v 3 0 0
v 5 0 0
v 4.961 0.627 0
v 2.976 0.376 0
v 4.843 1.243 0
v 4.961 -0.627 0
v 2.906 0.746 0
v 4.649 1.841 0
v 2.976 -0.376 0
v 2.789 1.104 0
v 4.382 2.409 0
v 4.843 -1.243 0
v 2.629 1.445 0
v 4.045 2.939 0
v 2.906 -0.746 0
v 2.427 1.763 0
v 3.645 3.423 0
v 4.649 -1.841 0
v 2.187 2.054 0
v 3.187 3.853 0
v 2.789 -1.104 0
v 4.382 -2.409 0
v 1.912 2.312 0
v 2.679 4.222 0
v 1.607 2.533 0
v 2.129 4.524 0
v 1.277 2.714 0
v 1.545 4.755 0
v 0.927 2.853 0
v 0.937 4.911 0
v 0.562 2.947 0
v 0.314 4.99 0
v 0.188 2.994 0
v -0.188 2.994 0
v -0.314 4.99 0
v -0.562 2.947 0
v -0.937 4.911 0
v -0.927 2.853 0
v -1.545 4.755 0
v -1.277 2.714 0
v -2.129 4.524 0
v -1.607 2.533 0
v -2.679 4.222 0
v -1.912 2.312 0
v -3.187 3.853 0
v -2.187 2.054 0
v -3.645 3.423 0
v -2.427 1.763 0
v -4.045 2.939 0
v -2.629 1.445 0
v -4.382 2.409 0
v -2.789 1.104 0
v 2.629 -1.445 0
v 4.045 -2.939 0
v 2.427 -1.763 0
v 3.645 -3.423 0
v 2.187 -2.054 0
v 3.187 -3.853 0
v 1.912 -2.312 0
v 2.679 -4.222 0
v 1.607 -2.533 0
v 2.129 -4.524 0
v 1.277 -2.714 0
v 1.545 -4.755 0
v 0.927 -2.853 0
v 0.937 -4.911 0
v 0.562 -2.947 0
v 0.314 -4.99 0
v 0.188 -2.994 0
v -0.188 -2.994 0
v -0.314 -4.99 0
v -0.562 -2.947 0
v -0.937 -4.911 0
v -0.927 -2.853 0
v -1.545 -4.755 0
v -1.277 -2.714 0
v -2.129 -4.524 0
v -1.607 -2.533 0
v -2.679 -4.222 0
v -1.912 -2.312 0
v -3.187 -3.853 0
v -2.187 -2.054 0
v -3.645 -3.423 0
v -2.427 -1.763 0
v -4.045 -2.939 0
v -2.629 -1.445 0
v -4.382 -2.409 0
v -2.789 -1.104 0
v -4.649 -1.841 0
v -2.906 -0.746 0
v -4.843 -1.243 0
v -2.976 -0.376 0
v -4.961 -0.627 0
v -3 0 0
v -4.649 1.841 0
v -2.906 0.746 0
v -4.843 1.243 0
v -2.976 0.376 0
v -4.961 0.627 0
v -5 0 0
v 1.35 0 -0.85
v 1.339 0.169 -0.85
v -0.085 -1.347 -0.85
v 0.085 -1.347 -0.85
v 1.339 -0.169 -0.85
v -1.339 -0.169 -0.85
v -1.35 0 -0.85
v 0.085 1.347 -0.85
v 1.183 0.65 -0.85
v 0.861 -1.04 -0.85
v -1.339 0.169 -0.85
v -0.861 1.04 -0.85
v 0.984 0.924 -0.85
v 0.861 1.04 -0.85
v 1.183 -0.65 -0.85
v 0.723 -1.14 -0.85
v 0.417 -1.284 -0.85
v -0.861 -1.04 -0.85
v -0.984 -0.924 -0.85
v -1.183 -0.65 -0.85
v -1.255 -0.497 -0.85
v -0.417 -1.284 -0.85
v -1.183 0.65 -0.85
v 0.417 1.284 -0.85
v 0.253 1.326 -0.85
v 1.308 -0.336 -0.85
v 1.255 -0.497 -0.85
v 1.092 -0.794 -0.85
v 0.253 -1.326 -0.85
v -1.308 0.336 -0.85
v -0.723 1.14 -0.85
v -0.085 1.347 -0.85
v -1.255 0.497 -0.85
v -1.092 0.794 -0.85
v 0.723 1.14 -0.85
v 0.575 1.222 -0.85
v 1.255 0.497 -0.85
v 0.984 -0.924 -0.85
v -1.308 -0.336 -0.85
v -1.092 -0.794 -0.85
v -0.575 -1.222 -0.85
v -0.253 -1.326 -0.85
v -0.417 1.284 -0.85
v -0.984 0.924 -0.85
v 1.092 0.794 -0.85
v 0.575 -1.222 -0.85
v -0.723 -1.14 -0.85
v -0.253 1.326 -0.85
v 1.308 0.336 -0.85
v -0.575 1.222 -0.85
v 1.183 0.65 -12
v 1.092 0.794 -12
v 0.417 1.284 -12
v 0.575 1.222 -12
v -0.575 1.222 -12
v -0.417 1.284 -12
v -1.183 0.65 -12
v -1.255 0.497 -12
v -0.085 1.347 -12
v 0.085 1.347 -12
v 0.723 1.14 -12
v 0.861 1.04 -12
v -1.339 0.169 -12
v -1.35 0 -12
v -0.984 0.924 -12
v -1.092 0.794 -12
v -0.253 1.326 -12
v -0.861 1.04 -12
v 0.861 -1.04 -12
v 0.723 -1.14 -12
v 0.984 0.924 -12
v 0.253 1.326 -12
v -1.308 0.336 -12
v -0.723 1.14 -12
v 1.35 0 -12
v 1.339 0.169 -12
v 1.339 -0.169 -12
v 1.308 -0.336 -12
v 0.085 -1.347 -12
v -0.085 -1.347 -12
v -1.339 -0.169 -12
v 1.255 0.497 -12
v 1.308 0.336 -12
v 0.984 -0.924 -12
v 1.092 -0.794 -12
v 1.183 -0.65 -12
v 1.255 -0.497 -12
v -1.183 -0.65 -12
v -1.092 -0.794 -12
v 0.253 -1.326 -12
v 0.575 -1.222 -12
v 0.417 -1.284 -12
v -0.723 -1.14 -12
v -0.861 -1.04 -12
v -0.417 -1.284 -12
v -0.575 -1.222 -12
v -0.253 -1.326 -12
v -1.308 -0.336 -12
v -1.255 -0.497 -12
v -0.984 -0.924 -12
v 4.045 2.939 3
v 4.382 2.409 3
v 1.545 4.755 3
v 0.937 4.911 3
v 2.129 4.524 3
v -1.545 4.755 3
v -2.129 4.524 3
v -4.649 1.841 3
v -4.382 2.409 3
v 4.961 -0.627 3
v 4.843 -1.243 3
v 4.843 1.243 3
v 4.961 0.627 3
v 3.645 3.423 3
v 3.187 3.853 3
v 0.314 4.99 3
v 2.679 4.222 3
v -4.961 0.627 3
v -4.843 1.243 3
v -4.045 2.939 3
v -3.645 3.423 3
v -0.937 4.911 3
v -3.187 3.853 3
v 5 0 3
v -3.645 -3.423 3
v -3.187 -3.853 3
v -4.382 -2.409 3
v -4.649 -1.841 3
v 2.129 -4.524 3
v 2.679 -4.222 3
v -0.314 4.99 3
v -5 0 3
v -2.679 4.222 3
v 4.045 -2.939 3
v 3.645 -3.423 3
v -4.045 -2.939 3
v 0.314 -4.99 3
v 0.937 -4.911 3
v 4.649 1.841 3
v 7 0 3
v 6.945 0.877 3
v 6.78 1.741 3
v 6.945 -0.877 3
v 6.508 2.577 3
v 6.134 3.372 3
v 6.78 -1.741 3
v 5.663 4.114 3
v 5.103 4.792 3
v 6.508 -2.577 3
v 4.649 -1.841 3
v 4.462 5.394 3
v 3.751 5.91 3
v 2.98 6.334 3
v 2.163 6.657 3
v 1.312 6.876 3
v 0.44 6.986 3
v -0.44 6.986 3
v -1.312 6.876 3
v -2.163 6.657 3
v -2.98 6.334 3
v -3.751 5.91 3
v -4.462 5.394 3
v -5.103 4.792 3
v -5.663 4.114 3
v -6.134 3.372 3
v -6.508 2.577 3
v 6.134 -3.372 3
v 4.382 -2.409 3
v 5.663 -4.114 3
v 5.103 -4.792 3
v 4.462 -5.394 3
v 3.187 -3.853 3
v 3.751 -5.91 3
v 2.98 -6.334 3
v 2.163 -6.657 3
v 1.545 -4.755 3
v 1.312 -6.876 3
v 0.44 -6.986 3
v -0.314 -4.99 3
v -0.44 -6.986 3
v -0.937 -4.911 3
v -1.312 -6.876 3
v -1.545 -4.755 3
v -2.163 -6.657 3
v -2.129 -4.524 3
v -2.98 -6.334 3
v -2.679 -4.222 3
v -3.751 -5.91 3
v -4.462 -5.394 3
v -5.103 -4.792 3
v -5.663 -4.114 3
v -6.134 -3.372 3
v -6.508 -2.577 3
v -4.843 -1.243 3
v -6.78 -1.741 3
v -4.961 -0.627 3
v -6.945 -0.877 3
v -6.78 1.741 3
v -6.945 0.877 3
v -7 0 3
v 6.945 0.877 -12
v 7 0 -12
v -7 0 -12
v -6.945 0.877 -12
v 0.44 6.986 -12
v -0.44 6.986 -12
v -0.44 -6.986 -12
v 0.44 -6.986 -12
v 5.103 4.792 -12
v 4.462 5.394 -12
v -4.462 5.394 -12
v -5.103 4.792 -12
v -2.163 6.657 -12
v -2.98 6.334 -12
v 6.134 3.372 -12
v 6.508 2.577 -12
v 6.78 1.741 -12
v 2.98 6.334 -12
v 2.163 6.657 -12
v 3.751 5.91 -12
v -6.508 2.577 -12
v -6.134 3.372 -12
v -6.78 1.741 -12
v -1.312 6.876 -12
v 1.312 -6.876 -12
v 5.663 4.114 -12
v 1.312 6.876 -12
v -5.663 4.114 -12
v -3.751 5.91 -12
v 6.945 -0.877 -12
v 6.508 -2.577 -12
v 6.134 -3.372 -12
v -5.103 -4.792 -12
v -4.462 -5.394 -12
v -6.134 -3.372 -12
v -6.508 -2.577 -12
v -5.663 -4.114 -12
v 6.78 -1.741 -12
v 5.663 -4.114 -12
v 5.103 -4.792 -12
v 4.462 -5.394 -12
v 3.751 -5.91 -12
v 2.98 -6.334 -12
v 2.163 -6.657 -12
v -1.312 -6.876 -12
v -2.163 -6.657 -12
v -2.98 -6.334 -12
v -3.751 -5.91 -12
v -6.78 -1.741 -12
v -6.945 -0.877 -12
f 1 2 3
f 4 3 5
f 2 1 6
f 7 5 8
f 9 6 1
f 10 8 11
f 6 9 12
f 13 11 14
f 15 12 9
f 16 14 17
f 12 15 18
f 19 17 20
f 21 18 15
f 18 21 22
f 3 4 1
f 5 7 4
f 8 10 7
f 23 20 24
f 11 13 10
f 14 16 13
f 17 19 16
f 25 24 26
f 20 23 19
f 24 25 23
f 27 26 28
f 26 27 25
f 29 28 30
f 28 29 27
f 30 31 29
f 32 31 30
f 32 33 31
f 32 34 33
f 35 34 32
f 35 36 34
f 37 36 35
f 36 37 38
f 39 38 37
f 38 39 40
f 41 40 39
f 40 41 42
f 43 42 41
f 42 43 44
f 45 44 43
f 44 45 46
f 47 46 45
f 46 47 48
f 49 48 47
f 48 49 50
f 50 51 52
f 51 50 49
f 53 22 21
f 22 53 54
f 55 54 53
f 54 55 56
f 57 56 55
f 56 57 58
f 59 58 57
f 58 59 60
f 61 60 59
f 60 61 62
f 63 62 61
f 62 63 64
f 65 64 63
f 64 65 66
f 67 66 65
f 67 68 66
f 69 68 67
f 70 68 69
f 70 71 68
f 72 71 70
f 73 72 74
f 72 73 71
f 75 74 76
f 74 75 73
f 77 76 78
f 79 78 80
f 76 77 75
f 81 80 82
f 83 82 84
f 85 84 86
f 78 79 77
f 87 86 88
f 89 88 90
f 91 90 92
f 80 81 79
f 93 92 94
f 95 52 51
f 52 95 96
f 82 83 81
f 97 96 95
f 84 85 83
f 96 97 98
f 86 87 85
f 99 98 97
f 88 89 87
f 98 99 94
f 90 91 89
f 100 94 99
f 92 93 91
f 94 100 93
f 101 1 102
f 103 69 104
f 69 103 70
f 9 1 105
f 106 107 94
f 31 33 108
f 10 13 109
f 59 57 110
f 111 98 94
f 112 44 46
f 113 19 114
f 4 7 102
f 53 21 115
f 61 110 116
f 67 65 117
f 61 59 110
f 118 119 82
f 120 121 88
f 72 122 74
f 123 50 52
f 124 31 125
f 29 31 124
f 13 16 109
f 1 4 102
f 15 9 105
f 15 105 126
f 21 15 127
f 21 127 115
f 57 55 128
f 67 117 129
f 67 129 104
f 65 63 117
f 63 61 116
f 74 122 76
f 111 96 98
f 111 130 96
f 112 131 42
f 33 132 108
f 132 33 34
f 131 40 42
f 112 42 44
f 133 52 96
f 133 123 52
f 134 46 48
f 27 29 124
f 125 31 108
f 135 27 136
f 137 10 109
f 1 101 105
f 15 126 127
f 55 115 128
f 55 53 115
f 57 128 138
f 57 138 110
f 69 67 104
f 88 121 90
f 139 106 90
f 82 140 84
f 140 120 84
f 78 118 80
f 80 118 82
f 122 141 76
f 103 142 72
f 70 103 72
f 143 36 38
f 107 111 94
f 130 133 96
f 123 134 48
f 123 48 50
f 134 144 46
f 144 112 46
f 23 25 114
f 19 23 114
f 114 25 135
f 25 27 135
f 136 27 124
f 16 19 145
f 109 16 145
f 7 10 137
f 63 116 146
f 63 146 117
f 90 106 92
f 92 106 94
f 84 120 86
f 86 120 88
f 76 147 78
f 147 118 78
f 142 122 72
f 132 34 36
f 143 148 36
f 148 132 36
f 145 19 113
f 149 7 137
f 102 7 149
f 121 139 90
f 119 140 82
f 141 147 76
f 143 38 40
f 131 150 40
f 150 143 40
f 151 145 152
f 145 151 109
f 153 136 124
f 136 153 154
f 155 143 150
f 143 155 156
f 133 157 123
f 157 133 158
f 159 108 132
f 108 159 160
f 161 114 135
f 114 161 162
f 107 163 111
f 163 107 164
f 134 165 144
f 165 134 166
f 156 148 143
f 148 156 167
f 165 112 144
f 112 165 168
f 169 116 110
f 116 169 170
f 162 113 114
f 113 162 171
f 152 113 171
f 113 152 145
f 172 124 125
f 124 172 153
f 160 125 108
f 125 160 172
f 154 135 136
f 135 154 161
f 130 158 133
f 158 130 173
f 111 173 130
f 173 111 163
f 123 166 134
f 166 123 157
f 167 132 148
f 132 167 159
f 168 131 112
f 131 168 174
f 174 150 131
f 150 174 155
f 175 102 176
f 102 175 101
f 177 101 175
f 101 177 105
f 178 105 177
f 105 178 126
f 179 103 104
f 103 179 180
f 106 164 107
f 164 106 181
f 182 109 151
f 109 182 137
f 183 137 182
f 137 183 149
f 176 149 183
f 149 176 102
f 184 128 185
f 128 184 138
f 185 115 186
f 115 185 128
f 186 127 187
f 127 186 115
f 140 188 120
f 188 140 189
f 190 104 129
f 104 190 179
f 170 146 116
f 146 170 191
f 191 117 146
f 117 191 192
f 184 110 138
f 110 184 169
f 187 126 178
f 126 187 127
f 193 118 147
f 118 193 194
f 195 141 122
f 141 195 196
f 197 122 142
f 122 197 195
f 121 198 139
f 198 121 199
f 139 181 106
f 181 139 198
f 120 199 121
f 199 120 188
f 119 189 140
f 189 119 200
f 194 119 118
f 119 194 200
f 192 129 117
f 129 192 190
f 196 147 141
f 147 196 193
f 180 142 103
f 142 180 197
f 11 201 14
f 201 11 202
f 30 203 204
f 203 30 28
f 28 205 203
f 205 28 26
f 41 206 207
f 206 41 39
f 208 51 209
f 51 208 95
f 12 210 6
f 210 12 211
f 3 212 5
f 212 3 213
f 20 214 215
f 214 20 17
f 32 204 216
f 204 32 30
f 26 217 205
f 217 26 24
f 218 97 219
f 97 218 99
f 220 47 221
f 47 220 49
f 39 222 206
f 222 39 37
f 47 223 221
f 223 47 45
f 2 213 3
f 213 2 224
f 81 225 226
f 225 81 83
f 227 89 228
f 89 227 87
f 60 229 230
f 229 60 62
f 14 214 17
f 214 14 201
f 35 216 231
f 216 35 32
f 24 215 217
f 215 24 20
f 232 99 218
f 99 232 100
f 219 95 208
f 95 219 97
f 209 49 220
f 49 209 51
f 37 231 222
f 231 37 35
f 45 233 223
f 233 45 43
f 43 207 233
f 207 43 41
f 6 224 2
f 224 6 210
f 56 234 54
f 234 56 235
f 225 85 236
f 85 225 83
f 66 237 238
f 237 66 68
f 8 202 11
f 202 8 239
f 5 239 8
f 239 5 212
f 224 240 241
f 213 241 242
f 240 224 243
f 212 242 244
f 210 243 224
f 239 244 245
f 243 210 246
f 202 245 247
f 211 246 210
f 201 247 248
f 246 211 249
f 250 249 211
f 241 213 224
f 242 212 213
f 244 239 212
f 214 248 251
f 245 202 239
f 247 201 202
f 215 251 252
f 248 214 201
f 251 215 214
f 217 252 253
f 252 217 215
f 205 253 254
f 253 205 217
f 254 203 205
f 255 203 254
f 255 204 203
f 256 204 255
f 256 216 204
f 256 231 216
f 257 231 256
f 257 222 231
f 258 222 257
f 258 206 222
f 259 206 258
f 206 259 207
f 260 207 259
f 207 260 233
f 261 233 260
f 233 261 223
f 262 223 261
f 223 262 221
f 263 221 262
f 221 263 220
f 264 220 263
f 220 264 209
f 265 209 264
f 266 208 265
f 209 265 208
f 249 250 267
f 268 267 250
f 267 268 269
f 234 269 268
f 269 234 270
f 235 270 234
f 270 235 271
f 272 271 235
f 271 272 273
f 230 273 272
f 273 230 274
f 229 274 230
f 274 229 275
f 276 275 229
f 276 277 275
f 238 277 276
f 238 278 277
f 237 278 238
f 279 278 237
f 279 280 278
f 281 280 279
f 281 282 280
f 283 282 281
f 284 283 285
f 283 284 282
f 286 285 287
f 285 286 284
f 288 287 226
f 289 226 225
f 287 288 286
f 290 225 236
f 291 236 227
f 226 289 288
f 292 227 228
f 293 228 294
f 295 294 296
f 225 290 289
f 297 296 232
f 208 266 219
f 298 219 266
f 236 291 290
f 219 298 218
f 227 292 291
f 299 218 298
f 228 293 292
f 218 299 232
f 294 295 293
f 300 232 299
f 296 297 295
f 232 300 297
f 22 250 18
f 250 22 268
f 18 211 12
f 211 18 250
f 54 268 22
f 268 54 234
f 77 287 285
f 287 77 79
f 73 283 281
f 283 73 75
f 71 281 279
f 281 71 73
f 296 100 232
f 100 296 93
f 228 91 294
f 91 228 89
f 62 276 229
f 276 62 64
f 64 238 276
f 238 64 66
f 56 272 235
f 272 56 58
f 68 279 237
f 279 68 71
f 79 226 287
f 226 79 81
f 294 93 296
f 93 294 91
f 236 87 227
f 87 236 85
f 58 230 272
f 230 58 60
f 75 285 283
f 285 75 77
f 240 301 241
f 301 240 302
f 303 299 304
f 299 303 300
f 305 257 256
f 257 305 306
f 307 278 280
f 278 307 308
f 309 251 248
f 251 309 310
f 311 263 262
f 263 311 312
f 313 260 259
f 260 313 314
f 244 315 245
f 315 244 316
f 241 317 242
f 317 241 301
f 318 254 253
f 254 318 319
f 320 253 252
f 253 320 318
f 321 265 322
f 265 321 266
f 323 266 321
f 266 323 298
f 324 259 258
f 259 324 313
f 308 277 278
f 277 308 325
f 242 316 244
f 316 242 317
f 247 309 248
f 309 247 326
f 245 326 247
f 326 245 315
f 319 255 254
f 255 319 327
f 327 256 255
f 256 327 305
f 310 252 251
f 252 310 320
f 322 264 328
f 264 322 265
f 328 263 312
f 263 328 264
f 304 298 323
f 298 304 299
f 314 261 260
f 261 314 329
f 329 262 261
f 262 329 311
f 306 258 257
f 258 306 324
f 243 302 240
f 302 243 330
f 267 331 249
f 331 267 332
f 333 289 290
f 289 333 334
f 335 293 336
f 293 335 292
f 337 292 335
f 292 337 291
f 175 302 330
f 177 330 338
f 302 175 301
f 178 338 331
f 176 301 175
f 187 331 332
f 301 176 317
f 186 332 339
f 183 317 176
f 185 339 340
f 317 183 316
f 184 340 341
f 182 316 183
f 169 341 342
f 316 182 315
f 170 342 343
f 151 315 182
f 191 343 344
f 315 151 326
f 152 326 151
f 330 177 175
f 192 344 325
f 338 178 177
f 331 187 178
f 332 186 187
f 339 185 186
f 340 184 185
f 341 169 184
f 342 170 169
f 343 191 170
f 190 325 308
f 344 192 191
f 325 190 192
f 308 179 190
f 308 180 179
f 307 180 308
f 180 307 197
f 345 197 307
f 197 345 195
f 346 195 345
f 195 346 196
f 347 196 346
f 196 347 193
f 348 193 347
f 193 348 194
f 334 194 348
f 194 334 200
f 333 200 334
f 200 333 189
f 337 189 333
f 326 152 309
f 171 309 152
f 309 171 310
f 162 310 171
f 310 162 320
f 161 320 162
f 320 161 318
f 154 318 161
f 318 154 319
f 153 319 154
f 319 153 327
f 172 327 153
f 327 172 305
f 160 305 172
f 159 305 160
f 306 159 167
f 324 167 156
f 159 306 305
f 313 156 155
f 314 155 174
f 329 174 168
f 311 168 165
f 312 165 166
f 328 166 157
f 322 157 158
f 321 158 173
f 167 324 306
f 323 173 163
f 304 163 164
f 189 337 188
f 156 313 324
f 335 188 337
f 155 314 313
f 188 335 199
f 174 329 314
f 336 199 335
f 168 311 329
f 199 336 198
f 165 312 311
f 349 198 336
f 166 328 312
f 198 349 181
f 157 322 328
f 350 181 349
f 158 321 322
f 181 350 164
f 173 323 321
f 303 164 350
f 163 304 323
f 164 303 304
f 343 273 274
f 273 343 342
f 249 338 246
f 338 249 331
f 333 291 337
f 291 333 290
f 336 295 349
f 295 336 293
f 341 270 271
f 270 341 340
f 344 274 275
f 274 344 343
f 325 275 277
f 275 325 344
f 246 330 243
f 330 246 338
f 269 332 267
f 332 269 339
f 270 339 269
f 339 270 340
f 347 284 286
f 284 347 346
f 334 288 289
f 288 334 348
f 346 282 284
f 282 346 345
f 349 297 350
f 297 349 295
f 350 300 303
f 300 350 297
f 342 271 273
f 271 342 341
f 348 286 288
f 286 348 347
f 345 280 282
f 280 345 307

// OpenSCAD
$fn = 50;


difference() {
	union() {
		translate(v = [0, 0, -12.0000000000]) {
			cylinder(h = 15, r = 7.0000000000);
		}
	}
	union() {
		translate(v = [0, 0, 0]) {
			rotate(a = [0, 0, 0]) {
				difference() {
					union() {
						translate(v = [0, 0, -15.0000000000]) {
							cylinder(h = 15, r = 1.0000000000);
						}
						translate(v = [0, 0, -0.8500000000]) {
							cylinder(h = 0.8500000000, r1 = 1.3500000000, r2 = 3.0000000000);
						}
						translate(v = [0, 0, -15.0000000000]) {
							cylinder(h = 15, r = 1.3500000000);
						}
						translate(v = [0, 0, -15.0000000000]) {
							cylinder(h = 15, r = 1.0000000000);
						}
					}
					union();
				}
			}
		}
		#cylinder(h = 3, r = 5.0000000000);
	}
}
